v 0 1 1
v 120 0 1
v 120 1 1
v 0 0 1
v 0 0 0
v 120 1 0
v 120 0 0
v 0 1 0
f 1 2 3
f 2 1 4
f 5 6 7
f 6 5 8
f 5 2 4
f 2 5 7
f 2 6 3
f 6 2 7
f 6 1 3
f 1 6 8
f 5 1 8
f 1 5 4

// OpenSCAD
// file: lib/board_A.scad
//
// Stacky Board "A" template
//
// (C) 2019 Johannes Ernst.
// License: see package.
//

include <constants.scad>

module board_A( xu, yu ) {
    h = $dz_unit/2;

    difference() {
        translate( [ $play, $play, $play ] ) {
            cube( [ xu * $dx_unit - $play2 , yu * $dy_unit - $play2, h - $play2 ] );
        }

        for( ix = [ 0 : xu-1 ] ) {
            for( iy = [ 0 : yu-1 ] ) {
                translate( [ ix * $dx_unit + $dx_unit/2, iy * $dy_unit + $dy_unit/2, -$eps ] ) { // works even if $play=0
                     board_A_hole( h );
                }
            }
        }
    }
}

module board_A_hole( h ) {
    // see also peg_A
    render()
    difference() {
        cylinder( h = h + $eps2, r = $r2 + ( $r2 - $r1 ) );

        rotate_extrude( angle=360 ) {
            translate( [ $r1, -$eps, 0 ] ) {
                union() {
                    square( [ $r2 + ( $r2 - $r1 ), h + 4*$eps - ($r2 - $r1) ] );
                    translate( [ $r2 - $r1, h + 2*$eps - ($r2 -$r1), 0 ] ) {
                        circle( r = $r2 - $r1 );
                    }
                    translate( [ $r2 - $r1, -$eps, 0 ] ) {
                        square( [ $r2 + $r2 - $r1, h + 2 * $eps ] );
                    }
                }
            }
        }
    }
}
// file: lib/constants.scad
//
// Global constants for all parts
//
// (C) 2019 Johannes Ernst.
// License: see package.
//

$version = "stacky-v1"; // version identifier to be etched into parts

$fn = 64;         // smoothness

$dx_unit = 10;    // main grid unit in x direction
$dy_unit = 10;    // main grid unit in y direction
$dz_unit = 10;    // main grid unit in z direction

$r1 = 3;          // peg radius
$r2 = 5;          // radius of the end of taper of peg

$play = 0.02;     // gap between surface and nominal location so that
                  // it can move against another surface at the same
                  // nominal location
$play2 = 2*$play; // convenience constant

$eps = 0.002;     // add this to avoid numeric almost-equals
$eps2 = 2*$eps;   // convenience constant
// file: lib/peg_A.scad
//
// Stacky Peg for Board "A" template
//
// (C) 2019 Johannes Ernst.
// License: see package.
//

include <constants.scad>
include <board_A.scad>

// This peg's cylinder goes through board_A and sticks out at the
// other end, so it can be inserted into another peg
//
// xu, yu, zu: x/y/z units (e.g. 4 for 4 cm)
module peg_At( xu, yu, zu ) {
    peg_A( xu, yu, zu, $dz_unit );
}

// This peg's cylinder, by default, has the same length as the thickness
// of board_A, so it won't stick out
module peg_A( xu, yu, zu, cyl_h = $dz_unit/2, $taper=1 ) {
    h = $dz_unit * zu;

    difference() {
        cube( [ $dx_unit * xu, $dy_unit * yu, h ] );

        for( ix = [0:xu-1] ) {
            for( iy = [0:yu-1] ) {
                translate( [ $dx_unit * ix + $dx_unit/2, $dy_unit * iy + $dy_unit/2, -$eps ] ) {
                    // make the hole extra deep -- doesn't hurt, and there will be printer leftovers
                    cylinder( r = $r1, h = min( $dz_unit * 1.5, h * 0.8 ) + $eps );
                };
            };
        };
    };

    for( ix = [0:xu-1] ) {
        for( iy = [0:yu-1] ) {
            translate( [ $dx_unit * ix , $dy_unit * iy, 0 ] ) {
                difference() {
                    // see also board_A_hole
                    translate( [ 0, 0, h ] ) {
                        cube( [ $dx_unit, $dy_unit, cyl_h ] );
                    };

                    translate( [ $dx_unit/2, $dy_unit/2, h ] )
                    rotate_extrude( angle=360 ) {
                        translate( [ $r1, -$eps, 0 ] ) {
                            union() {
                                // go further to the right than needed: 2 * $r2 will do
                                translate( [ 0, $r2 - $r1, 0 ] ) {
                                    square( [ 2 * $r2 - $r1, cyl_h + 4*$eps - ($r2 - $r1) ] );
                                }
                                translate( [ $r2 - $r1, $r2 - $r1, 0 ] ) {
                                    circle( r = $r2 - $r1 );
                                }
                                translate( [ $r2 - $r1, -$eps, 0 ] ) {
                                    square( [ 2 * $r2 - $r1, cyl_h + 2 * $eps ] );
                                }
                            }
                        }
                    }

                    // taper
                    translate( [ $dx_unit/2, $dy_unit/2, h ] )
                    rotate_extrude( angle=360 ) {
                        polygon( [
                            [ $r1 - $taper/2, cyl_h ],
                            [ $r1, cyl_h - 1 ],
                            [ $r1, cyl_h ]
                        ] );
                    };
                }
            }
        };
    }
};
// main file
//
// Stacky Peg for Board "A" 12 cm, extends through board
//
// (C) 2019 Johannes Ernst.
// License: see package.
//

include <lib/peg_A.scad>

peg_At( 12 );
